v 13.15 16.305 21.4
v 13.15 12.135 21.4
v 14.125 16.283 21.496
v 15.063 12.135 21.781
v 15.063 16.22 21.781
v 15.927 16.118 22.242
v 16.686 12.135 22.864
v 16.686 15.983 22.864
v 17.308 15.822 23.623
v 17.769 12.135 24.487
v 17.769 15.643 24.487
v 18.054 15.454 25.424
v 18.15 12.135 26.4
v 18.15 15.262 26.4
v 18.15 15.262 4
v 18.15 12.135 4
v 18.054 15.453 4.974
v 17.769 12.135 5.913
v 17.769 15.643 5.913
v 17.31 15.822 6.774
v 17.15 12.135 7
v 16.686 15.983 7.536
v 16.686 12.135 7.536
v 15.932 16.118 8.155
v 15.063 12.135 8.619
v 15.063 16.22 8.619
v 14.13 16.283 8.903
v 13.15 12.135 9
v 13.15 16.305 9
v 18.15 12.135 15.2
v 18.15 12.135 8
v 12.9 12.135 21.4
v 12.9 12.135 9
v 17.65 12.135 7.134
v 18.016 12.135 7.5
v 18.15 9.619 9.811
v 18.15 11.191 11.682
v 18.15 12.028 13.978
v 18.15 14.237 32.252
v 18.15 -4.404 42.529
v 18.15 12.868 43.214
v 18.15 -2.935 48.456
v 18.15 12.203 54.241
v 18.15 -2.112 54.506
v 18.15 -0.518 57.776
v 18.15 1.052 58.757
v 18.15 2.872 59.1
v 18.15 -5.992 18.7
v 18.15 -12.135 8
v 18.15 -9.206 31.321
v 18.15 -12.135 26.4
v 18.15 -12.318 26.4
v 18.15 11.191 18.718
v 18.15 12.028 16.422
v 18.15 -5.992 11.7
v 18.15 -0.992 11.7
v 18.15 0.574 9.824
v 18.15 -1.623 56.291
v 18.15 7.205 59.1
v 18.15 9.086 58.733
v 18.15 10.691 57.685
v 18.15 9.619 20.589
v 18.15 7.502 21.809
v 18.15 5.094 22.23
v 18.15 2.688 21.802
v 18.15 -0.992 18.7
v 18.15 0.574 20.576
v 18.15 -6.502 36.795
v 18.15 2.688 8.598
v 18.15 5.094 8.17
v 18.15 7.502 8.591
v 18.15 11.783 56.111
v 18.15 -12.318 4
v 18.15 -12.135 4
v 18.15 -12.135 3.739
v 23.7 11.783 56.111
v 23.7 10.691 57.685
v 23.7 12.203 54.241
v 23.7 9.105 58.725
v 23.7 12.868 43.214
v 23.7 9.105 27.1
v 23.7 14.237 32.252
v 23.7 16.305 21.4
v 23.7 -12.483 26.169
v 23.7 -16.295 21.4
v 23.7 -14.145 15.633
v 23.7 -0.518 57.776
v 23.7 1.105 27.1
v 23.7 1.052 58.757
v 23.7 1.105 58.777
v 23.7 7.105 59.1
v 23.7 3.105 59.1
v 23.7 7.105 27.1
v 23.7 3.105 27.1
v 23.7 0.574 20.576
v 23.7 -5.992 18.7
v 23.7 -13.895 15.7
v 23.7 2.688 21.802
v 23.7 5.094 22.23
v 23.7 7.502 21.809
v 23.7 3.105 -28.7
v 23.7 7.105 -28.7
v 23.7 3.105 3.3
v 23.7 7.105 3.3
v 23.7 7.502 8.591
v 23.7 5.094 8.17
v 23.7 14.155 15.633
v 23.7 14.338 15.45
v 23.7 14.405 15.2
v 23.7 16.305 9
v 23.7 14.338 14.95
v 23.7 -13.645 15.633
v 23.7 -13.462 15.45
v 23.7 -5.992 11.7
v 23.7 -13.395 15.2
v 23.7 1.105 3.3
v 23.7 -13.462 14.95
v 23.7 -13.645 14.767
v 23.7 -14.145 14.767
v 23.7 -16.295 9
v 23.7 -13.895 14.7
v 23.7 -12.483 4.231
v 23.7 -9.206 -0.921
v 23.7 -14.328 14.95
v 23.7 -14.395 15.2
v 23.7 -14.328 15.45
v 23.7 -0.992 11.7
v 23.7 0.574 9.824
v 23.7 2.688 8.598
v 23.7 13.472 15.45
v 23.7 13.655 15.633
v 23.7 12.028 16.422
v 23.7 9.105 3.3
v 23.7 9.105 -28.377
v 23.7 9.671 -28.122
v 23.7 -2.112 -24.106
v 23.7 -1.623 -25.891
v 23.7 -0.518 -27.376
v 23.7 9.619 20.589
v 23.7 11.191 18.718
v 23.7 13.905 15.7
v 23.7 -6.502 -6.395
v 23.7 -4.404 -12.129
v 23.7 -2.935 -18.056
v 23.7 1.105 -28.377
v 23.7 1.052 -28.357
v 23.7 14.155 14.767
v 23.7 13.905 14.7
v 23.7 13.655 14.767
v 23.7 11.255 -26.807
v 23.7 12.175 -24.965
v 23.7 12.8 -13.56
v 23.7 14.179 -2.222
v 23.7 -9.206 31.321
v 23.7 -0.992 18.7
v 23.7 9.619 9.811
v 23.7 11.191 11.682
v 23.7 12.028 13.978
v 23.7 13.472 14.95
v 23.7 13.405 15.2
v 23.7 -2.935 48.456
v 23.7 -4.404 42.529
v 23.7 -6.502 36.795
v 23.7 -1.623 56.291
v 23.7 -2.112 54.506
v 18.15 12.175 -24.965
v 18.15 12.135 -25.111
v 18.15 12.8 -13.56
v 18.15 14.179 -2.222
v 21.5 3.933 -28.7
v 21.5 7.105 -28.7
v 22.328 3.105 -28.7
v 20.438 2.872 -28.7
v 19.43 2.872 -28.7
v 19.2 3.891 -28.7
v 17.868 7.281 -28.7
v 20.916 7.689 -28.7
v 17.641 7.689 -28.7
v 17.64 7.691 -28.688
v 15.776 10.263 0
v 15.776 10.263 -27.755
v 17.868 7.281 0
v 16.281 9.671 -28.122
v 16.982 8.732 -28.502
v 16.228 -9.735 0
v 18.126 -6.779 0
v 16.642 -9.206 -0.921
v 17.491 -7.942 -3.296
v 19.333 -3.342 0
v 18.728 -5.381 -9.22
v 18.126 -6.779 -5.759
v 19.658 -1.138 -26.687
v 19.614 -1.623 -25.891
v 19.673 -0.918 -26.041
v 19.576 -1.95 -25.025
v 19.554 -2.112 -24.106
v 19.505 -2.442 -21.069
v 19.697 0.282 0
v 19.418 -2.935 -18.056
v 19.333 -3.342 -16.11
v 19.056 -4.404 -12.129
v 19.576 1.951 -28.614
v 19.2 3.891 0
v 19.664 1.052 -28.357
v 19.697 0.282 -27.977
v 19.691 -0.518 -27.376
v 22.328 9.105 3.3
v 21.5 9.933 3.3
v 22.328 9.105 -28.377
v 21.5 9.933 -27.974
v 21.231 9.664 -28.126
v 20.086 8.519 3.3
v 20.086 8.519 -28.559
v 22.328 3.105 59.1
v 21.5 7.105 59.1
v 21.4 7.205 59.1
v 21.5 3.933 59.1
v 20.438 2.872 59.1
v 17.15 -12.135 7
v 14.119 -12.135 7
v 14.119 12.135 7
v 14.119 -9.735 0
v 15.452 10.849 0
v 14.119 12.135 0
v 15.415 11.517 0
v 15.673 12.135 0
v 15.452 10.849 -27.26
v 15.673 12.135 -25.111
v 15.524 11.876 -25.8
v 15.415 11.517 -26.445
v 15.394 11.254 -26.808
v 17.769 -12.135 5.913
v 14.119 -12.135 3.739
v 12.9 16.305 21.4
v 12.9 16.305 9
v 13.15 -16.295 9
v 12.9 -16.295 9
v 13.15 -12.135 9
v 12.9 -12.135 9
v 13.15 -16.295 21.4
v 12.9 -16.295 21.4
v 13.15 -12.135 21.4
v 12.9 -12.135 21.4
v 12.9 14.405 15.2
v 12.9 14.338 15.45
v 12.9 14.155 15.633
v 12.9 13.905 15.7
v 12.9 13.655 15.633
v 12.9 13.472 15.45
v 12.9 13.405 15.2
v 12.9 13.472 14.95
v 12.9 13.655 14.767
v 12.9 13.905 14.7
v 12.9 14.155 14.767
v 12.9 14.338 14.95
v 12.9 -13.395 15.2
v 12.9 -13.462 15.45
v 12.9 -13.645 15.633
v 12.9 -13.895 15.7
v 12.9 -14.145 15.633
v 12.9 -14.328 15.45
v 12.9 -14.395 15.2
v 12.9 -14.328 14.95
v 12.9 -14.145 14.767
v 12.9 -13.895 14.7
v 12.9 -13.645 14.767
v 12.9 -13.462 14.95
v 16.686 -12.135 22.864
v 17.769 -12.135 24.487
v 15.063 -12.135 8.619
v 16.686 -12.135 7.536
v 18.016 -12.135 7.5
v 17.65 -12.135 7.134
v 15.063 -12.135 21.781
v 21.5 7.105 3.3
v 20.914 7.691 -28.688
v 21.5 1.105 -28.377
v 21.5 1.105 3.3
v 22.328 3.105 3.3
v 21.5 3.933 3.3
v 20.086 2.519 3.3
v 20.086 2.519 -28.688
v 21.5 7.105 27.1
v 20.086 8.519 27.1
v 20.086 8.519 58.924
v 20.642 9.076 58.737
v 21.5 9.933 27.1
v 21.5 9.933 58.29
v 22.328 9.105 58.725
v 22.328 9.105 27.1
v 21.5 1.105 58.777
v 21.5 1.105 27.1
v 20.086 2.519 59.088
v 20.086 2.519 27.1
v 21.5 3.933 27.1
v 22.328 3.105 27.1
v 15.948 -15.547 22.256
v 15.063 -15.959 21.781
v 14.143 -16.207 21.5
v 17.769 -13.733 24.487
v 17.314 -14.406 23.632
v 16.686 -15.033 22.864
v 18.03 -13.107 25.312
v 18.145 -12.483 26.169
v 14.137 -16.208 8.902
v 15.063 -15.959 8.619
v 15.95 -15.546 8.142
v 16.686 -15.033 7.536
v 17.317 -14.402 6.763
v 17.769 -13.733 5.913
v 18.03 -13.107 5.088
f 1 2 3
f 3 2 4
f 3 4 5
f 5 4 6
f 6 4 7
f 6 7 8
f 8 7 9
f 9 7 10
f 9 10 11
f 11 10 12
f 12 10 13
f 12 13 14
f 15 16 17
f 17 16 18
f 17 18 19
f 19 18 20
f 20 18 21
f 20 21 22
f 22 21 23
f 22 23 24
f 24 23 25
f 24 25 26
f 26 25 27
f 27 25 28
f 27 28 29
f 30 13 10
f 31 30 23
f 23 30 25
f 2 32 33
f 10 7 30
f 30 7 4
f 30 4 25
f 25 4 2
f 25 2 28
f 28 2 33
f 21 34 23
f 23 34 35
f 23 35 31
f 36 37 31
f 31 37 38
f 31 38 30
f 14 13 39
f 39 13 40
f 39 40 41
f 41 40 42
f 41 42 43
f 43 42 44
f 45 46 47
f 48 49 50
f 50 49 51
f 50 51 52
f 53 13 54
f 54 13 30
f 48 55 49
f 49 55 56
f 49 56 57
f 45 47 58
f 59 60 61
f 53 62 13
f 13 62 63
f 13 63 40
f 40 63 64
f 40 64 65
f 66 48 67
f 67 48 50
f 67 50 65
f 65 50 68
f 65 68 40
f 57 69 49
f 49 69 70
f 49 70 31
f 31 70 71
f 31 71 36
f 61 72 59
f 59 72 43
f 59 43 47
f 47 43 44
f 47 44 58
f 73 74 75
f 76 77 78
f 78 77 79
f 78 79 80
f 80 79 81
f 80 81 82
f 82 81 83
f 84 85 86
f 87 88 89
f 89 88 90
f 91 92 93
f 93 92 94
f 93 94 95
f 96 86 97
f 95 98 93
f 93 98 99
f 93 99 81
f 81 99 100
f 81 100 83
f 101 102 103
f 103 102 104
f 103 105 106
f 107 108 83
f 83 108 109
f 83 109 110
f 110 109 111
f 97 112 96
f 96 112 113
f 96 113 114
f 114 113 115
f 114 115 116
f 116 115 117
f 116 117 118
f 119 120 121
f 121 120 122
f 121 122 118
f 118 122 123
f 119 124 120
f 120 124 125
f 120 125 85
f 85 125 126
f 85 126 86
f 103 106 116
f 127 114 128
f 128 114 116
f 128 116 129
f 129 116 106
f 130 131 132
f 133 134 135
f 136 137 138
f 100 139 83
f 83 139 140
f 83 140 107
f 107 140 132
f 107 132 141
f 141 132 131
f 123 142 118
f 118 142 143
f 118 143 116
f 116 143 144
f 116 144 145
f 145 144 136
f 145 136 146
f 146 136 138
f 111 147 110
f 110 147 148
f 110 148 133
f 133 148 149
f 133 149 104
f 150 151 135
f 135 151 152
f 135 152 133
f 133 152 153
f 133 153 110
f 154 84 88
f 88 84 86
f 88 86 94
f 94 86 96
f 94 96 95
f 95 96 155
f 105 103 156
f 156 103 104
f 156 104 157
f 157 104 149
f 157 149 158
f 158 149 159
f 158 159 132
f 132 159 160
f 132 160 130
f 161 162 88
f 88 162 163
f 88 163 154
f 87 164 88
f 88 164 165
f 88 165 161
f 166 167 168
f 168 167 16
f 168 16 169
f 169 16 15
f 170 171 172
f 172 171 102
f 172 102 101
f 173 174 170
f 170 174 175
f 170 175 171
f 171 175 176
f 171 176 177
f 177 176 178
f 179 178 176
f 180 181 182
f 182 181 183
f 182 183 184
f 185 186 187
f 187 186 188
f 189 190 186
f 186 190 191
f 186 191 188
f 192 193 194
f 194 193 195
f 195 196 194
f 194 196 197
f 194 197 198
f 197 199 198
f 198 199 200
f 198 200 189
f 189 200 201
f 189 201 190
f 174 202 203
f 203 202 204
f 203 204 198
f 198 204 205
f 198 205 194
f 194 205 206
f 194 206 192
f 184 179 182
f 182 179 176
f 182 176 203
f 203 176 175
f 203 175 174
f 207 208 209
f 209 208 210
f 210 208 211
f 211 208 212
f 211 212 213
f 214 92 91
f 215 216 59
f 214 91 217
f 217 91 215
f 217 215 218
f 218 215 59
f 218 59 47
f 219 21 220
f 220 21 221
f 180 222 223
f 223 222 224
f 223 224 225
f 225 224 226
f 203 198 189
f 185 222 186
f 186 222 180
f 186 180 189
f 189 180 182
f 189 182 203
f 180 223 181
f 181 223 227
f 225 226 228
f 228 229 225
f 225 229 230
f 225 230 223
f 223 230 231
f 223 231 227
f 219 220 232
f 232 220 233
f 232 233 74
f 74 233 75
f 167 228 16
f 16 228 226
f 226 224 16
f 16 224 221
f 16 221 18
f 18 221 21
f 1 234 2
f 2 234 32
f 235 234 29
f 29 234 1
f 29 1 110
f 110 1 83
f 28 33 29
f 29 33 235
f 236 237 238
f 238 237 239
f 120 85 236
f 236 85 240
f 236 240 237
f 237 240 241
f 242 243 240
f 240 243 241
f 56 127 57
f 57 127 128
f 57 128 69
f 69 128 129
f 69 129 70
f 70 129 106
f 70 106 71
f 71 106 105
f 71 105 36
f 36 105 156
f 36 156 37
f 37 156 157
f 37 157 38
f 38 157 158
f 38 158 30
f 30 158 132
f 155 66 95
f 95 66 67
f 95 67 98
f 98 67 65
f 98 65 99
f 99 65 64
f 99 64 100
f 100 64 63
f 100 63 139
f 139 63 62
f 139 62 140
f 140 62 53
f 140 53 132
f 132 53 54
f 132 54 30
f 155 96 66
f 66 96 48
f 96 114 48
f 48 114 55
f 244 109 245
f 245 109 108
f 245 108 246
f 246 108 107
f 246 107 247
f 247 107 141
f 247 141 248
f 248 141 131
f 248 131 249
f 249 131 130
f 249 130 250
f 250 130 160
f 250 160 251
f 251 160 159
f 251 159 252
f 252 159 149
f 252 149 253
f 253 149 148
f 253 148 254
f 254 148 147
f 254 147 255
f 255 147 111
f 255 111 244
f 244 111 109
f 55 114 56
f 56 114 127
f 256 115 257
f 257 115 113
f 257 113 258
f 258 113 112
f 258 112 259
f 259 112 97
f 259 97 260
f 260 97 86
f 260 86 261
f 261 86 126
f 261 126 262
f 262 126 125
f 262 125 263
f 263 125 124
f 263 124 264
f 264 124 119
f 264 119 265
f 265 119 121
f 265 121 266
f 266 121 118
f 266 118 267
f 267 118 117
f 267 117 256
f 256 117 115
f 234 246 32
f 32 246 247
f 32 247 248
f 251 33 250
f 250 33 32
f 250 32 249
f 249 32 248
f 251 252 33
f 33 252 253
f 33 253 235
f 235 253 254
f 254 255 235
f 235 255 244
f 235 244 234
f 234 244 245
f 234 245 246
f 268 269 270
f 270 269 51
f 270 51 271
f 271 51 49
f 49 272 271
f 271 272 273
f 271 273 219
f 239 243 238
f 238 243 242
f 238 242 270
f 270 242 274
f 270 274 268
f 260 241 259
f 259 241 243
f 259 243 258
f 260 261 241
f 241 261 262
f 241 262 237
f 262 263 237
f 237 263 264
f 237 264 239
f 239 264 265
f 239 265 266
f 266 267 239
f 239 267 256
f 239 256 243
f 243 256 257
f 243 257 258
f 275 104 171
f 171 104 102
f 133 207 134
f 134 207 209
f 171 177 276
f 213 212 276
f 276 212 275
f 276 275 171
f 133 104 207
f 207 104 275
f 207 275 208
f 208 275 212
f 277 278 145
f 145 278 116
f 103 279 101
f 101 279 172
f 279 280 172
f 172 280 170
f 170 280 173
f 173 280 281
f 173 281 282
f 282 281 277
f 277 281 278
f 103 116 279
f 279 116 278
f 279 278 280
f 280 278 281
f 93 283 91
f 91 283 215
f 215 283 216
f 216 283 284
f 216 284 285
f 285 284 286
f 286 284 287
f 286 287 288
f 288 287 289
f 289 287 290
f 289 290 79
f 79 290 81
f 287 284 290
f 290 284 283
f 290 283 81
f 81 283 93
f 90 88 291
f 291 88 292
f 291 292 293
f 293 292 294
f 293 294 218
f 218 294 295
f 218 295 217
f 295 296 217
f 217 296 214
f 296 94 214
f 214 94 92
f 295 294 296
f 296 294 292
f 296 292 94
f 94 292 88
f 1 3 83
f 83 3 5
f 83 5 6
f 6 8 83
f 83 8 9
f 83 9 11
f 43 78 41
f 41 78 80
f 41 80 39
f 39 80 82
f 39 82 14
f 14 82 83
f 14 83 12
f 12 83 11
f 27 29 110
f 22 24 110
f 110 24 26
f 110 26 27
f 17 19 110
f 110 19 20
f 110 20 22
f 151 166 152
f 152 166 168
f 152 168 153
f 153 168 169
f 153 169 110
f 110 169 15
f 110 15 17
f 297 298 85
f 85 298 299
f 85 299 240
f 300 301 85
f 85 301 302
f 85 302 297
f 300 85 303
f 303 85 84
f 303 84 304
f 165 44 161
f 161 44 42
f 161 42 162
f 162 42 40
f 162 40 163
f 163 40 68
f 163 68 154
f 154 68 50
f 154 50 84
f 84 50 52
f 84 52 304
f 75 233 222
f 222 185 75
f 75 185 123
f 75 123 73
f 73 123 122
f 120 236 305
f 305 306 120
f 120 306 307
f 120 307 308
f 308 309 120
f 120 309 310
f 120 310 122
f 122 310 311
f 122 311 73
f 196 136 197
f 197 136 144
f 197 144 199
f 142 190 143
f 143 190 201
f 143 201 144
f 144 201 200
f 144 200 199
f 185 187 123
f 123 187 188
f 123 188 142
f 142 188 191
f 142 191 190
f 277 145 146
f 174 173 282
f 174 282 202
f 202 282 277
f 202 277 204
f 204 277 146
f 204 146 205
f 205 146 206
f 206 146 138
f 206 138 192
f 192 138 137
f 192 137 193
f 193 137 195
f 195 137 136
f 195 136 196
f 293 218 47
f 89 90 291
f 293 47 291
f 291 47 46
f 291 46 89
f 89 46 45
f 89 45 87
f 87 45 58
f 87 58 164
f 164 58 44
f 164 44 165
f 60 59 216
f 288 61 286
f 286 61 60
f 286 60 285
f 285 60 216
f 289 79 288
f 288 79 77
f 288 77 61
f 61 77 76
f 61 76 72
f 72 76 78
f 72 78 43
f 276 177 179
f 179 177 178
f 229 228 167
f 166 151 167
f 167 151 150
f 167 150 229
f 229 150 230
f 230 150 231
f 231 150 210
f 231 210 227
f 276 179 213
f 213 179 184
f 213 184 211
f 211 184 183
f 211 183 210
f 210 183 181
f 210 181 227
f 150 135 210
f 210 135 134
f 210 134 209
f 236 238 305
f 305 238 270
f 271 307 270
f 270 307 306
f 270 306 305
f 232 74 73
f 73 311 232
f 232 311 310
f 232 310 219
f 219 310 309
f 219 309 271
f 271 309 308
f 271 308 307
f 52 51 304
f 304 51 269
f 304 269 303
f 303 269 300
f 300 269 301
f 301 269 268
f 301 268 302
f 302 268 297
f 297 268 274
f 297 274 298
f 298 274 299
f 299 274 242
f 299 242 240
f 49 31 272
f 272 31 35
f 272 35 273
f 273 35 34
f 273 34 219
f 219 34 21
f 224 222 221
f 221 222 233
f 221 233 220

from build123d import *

# Parameters (mm, degrees)
SKETCH1_R               = 2
BOSS_EXTRUDE3_DEPTH     = 7
SKETCH3_R               = 1.0000000000000002
SKETCH3_R_2             = 0.9999999999999998
SKETCH3_R_3             = 0.9999999999999996
SKETCH3_R_4             = 0.9999999999999993
CUT_EXTRUDE2_DEPTH      = 26.09227496303999
BOSS_EXTRUDE4_START     = -7
BOSS_EXTRUDE4_DEPTH     = 7
BOSS_EXTRUDE5_START     = -30
BOSS_EXTRUDE5_DEPTH     = 30
FILLET2_R               = 1.5
CUT_EXTRUDE5_DEPTH      = 42.36510924463761
BOSS_EXTRUDE6_DEPTH     = 10.5
MOVE_START              = -28.7
MOVE_FACE1_DEPTH        = 5.7
DELETEFACE1_START       = 23.7
DELETEFACE1_OUTLINE_W   = 10.499999999999998
DELETEFACE1_OUTLINE_H   = 35.699999999999996
DELETEFACE1_DEPTH       = 15.7
SKETCH11_OUTSIDE_W      = 51.876
SKETCH11_OUTSIDE_H      = 42.462
CUT_EXTRUDE6_DEPTH      = 46.16926949380307
SERVO_START             = -12.760864102
SERVO_MICRO_OUTLINE_W   = 22.6
SERVO_MICRO_OUTLINE_H   = 12.399999999999999
SERVO_MICRO_DEPTH       = 22.3
SERVO_START_2           = 9.539135898
SERVO_MICRO_2_DEPTH     = 4.3
SERVO_START_3           = 2.889135898
SERVO_MICRO_3_DEPTH     = 2.4
SERVO_START_4           = 13.839135898
SERVO_MICRO_4_OUTLINE_R = 2.5
SERVO_MICRO_4_DEPTH     = 3.3
SERVO_START_5           = -25.667487826
SERVO_MICRO_5_OUTLINE_R = 0.6
SERVO_MICRO_5_DEPTH     = 2.3
SERVO_MICRO_6_OUTLINE_R = 0.6
SERVO_MICRO_6_DEPTH     = 2.3
SERVO_MICRO_7_OUTLINE_R = 0.6
SERVO_MICRO_7_DEPTH     = 2.3
BODY_MOVE_COPY1_ANGLE   = 90
SKETCH13_R              = 0.5000000000000009
BOSS_EXTRUDE7_DEPTH     = 5.55
SKETCH13_3_R            = 0.5000000000000009
BOSS_EXTRUDE8_DEPTH     = 10.8
CUT_EXTRUDE7_DEPTH      = 32
BOSS_EXTRUDE9_DEPTH     = 5.55
CUT_EXTRUDE8_DEPTH      = 72.0125468998838
BOSS_EXTRUDE10_DEPTH    = 5.55
FILLET4_R               = 5
CUT_EXTRUDE10_DEPTH     = 72.01254695034633
FILLET8_START           = 12.13472734
FILLET8_DEPTH           = 2.98662
FILLET8_START_2         = -12.463268044
FILLET8_2_DEPTH         = 0.328540704
FILLET8_START_3         = -16.295273118
FILLET8_3_DEPTH         = 3.832005074
FILLET8_START_4         = 15.12134734
FILLET8_4_DEPTH         = 1.18338
FILLET8_START_5         = -7.24411042
FILLET8_5_DEPTH         = 25.39411042
FILLET9_R               = 1
CUT_EXTRUDE11_REACH     = 67.729
SKETCH20_W              = 27.71545594337198
SKETCH20_H              = 25.17831686014588


with BuildPart() as part:
    # Sketch1 → Boss-Extrude3 (new body)
    with BuildSketch(Plane.XY):
        with BuildLine():
            Line((5.606455718863049, 13.824363162033857), (-15.462379801128069, 15.791841653866829))
            Line((-15.462379801128069, 15.791841653866829), (-15.46237980112806, -15.791841653866806))
            Line((-15.46237980112806, -15.791841653866806), (5.606455718863063, -13.824363162033817))
            ThreePointArc((5.606455718863063, -13.824363162033817), (18.200000000000003, 2.613e-14), (5.606455718863049, 13.824363162033857))
        make_face()
        Circle(SKETCH1_R, mode=Mode.SUBTRACT)
    extrude(amount=BOSS_EXTRUDE3_DEPTH)

    # Sketch3 → Cut-Extrude2 (cut, through all)
    with BuildSketch(Plane.XY.offset(7)):
        with Locations((-4.5, 0)):
            Circle(SKETCH3_R)
        with Locations((-8.499999999999998, 0)):
            Circle(SKETCH3_R_2)
        with Locations(Location((4.5, -1.73e-15, 0), (0, 0, 180))):
            Circle(SKETCH3_R_3)
        with Locations(Location((8.499999999999998, -1.73e-15, 0), (0, 0, 180))):
            Circle(SKETCH3_R_4)
    extrude(amount=-CUT_EXTRUDE2_DEPTH, mode=Mode.SUBTRACT)

    # Sketch6 → Boss-Extrude4 (add)
    with BuildSketch(Plane.XY.offset(7).offset(BOSS_EXTRUDE4_START)):
        with BuildLine():
            Line((12.20372638619735, 13.208287910486863), (5.606455718863047, 13.824363162033858))
            ThreePointArc((5.606455718863047, 13.82436316203386), (18.2, 2.598e-14), (5.606455718863056, -13.824363162033816))
            Line((5.606455718863056, -13.824363162033816), (12.203726386197348, -13.208287910486817))
            ThreePointArc((12.203726386197348, -13.208287910486817), (19.699999999999996, 2.132e-14), (12.20372638619735, 13.20828791048686))
        make_face()
    extrude(amount=BOSS_EXTRUDE4_DEPTH)

    # Sketch6<3> → Boss-Extrude5 (add)
    with BuildSketch(Plane.XY.offset(7).offset(BOSS_EXTRUDE5_START)):
        with BuildLine():
            Line((23.700000000000006, 12.13472734042489), (12.20372638619735, 13.208287910486863))
            ThreePointArc((12.20372638619735, 13.20828791048686), (19.699999999999996, 2.132e-14), (12.203726386197348, -13.208287910486817))
            Line((12.203726386197348, -13.208287910486817), (23.700000000000003, -12.134727340424835))
            Line((23.700000000000003, -12.134727340424835), (23.700000000000006, 12.134727340424892))
        make_face()
    extrude(amount=BOSS_EXTRUDE5_DEPTH)

    # Fillet2
    fillet2_edges = [part.edges().sort_by_distance(p)[0] for p in [
        (12.20372638619735, -13.208287910486817, -11.5),
        (12.20372638619735, 13.208287910486861, -11.5),
    ]]
    fillet(fillet2_edges, radius=FILLET2_R)

    # Sketch8 → Cut-Extrude5 (cut, through all)
    with BuildSketch(Plane.XY.offset(7)):
        with BuildLine():
            Line((-15.462379801128069, 15.791841653866829), (-15.46237980112806, -15.791841653866808))
            Line((-15.46237980112806, -15.791841653866806), (1.328273056892355, -14.223874201150027))
            ThreePointArc((1.3282730568923518, -14.22387420115002), (-14.285758873920813, 0), (1.3282730568923529, 14.22387420115002))
            Line((1.3282730568923604, 14.223874201150062), (-15.462379801128069, 15.791841653866829))
        make_face()
    extrude(amount=-CUT_EXTRUDE5_DEPTH, mode=Mode.SUBTRACT)

    # Sketch10 → Boss-Extrude6 (add)
    with BuildSketch(Plane.ZX.offset(1.6347273404248903)):
        Polygon((7, 23.700000000000003), (7, 39.40000000018666), (-28.700000000000003, 39.40000000018665), (-28.700000000000014, 23.700000000000003), align=None)
    extrude(amount=BOSS_EXTRUDE6_DEPTH)

    # Move Face1: read off the stored shape, not the designer's step
    # Move Face1 outline → Move Face1 (add)
    with BuildSketch(Plane.XY.offset(MOVE_START)):
        with BuildLine():
            Line((17.033263706, -12.757289525), (23.7, -12.13472734))
            Line((23.7, -12.13472734), (23.7, 12.13472734))
            Line((23.7, 12.13472734), (17.033263706, 12.757289525))
            ThreePointArc((17.033263706, 12.757289525), (15.554272674, 11.938827155), (15.776353621, 10.263125757))
            ThreePointArc((15.776353621, 10.263125757), (19.7, 0), (15.776353621, -10.263125757))
            ThreePointArc((15.776353621, -10.263125757), (15.554272674, -11.938827155), (17.033263706, -12.757289525))
        make_face()
    extrude(amount=MOVE_FACE1_DEPTH)

    # DeleteFace1: read off the stored shape, not the designer's step
    # DeleteFace1 outline → DeleteFace1 (cut)
    with BuildSketch(Plane.YZ.offset(DELETEFACE1_START)):
        with Locations((6.884727339999999, -10.849999999999998)):
            Rectangle(DELETEFACE1_OUTLINE_W, DELETEFACE1_OUTLINE_H)
    extrude(amount=DELETEFACE1_DEPTH, mode=Mode.SUBTRACT)

    # Sketch11 outside → Cut-Extrude6 (cut, through all)
    with BuildSketch(Plane.XY.offset(7)):
        with Locations((4.706999999999997, 0)):
            Rectangle(SKETCH11_OUTSIDE_W, SKETCH11_OUTSIDE_H)
        with BuildLine():
            Line((23.700000000000003, 12.134727340424888), (-1.43e-15, 12.134727340424885))
            ThreePointArc((-1.43e-15, 12.134727340424885), (-12.134727340424885, 1.49e-15), (0, -12.134727340424885))
            Line((0, -12.134727340424885), (23.700000000000006, -12.134727340424835))
            Line((23.700000000000006, -12.134727340424835), (23.700000000000003, 12.134727340424888))
        make_face(mode=Mode.SUBTRACT)
    extrude(amount=-CUT_EXTRUDE6_DEPTH, mode=Mode.SUBTRACT)

    # Sketch13 → Boss-Extrude7 (add)
    # profile 1 of 3: a face of its own
    with BuildSketch(Plane(origin=(23.700000000000003, -3.39e-15, 0), x_dir=(0, 0, -1), z_dir=(1, -1.4e-16, 0))):
        Polygon((-8.999999999999998, -16.295272659575108), (-9.000000000000002, -12.134727340424831), (-7, -12.134727340424831), (-6.999999999999999, 12.134727340424892), (-9.000000000000002, 12.134727340424888), (-9.000000000000002, 16.30472734042489), (-21.4, 16.30472734042489), (-21.399999999999995, 12.134727340424888), (-59.100000000000016, 12.134727340424885), (-59.100000000000016, -12.134727340424831), (-21.399999999999995, -12.134727340424831), (-21.4, -16.295272659575108), align=None)
        with Locations(Location((-15.200000000000001, 13.904727340424891, 0), (0, 0, 90))):
            Circle(SKETCH13_R, mode=Mode.SUBTRACT)
        with Locations(Location((-15.200000000000001, -13.895272659575111, 0), (0, 0, 90))):
            Circle(SKETCH13_R, mode=Mode.SUBTRACT)
        with BuildLine():
            ThreePointArc((-11.700000000000001, -0.9920668991734916), (-15.199999999999998, 12.13472734042489), (-18.700000000000003, -0.9920668991734924))
            Line((-18.700000000000003, -0.9920668991734924), (-18.700000000000003, -5.9920668991734924))
            Line((-18.700000000000003, -5.9920668991734924), (-11.700000000000003, -5.992066899173492))
            Line((-11.700000000000003, -5.992066899173492), (-11.700000000000001, -0.9920668991734916))
        make_face(mode=Mode.SUBTRACT)
    # profile 2 of 3: a face of its own
    with BuildSketch(Plane(origin=(23.700000000000003, -3.39e-15, 0), x_dir=(0, 0, -1), z_dir=(1, -1.4e-16, 0))):
        Polygon((-21.399999999999995, 12.134727340424888), (-21.4, 16.30472734042489), (-9.000000000000002, 16.30472734042489), (-9.000000000000002, 12.134727340424888), align=None)
        with Locations(Location((-15.200000000000001, 13.904727340424891, 0), (0, 0, 90))):
            Circle(SKETCH13_R, mode=Mode.SUBTRACT)
    # profile 3 of 3: a face of its own
    with BuildSketch(Plane(origin=(23.700000000000003, -3.39e-15, 0), x_dir=(0, 0, -1), z_dir=(1, -1.4e-16, 0))):
        Polygon((-21.399999999999995, -12.134727340424831), (-9.000000000000002, -12.134727340424831), (-8.999999999999998, -16.295272659575108), (-21.4, -16.295272659575108), align=None)
        with Locations(Location((-15.200000000000001, -13.895272659575111, 0), (0, 0, 90))):
            Circle(SKETCH13_R, mode=Mode.SUBTRACT)
    extrude(amount=-BOSS_EXTRUDE7_DEPTH)

    # Sketch13<3> → Boss-Extrude8 (add)
    # profile 1 of 2: a face of its own
    with BuildSketch(Plane(origin=(23.700000000000003, -3.39e-15, 0), x_dir=(0, 0, -1), z_dir=(1, -1.4e-16, 0))):
        Polygon((-21.399999999999995, 12.134727340424888), (-21.4, 16.30472734042489), (-9.000000000000002, 16.30472734042489), (-9.000000000000002, 12.134727340424888), align=None)
        with Locations(Location((-15.200000000000001, 13.904727340424891, 0), (0, 0, 90))):
            Circle(SKETCH13_3_R, mode=Mode.SUBTRACT)
    # profile 2 of 2: a face of its own
    with BuildSketch(Plane(origin=(23.700000000000003, -3.39e-15, 0), x_dir=(0, 0, -1), z_dir=(1, -1.4e-16, 0))):
        Polygon((-21.399999999999995, -12.134727340424831), (-9.000000000000002, -12.134727340424831), (-8.999999999999998, -16.295272659575108), (-21.4, -16.295272659575108), align=None)
        with Locations(Location((-15.200000000000001, -13.895272659575111, 0), (0, 0, 90))):
            Circle(SKETCH13_3_R, mode=Mode.SUBTRACT)
    extrude(amount=-BOSS_EXTRUDE8_DEPTH)

    # Sketch15 → Cut-Extrude7 (cut)
    with BuildSketch(Plane(origin=(1.903e-14, 0, -28.70000000000003), x_dir=(-1, 0, -6.6e-16), z_dir=(6.6e-16, 0, -1))):
        Polygon((-22.328427124746177, 3.104727340424887), (-23.699999999999985, 3.104727340424887), (-23.699999999999985, 1.1047273404248876), (-21.499999999999986, 1.1047273404248876), (-20.08578643762689, 2.5189409027979854), (-21.49999999999999, 3.9331544651710773), align=None)
        Polygon((-22.328427124746177, 9.104727340424887), (-23.699999999999985, 9.104727340424887), (-23.699999999999985, 7.104727340424887), (-21.499999999999986, 7.104727340424887), (-20.08578643762689, 8.518940902797986), (-21.49999999999999, 9.933154465171077), align=None)
    cut_extrude7 = extrude(amount=-CUT_EXTRUDE7_DEPTH, mode=Mode.SUBTRACT)

    # Mirror1: Cut-Extrude7 across plane
    add(cut_extrude7.mirror(Plane(origin=(0, 0, 15.200000000000001), x_dir=(1, 0, 0), z_dir=(0, 0, -1))), mode=Mode.SUBTRACT)

    # Sketch16 → Boss-Extrude9 (add)
    with BuildSketch(Plane(origin=(23.700000000000003, -3.39e-15, 0), x_dir=(0, 0, -1), z_dir=(1, -1.4e-16, 0))):
        with BuildLine():
            Line((-21.399999999999995, 12.134727340424888), (-21.4, 16.30472734042489))
            ThreePointArc((-21.4, 16.30472734042489), (-40.135039546574305, 13.18039662240372), (-59.100000000000016, 12.134727340424885))
            Line((-59.100000000000016, 12.134727340424885), (-21.399999999999995, 12.134727340424888))
        make_face()
        with BuildLine():
            Line((-9.000000000000002, 16.30472734042489), (-9.000000000000002, 12.13472734042489))
            Line((-9.000000000000002, 12.13472734042489), (28.700000000000014, 12.134727340424892))
            ThreePointArc((28.700000000000014, 12.134727340424892), (9.735039546574328, 13.180396622403777), (-9.000000000000002, 16.30472734042489))
        make_face()
    extrude(amount=-BOSS_EXTRUDE9_DEPTH)

    # Sketch18 → Cut-Extrude8 (cut, through all)
    with BuildSketch(Plane(origin=(23.700000000000003, -3.39e-15, 0), x_dir=(0, 0, -1), z_dir=(1, -1.4e-16, 0))):
        with BuildLine():
            Line((-59.100000000000016, -12.134727340424831), (-26.661429094135563, -12.134727340424831))
            ThreePointArc((-26.661429094135563, -12.134727340424838), (-42.096369157624615, -4.537893974213425), (-59.100000000000016, -1.9252726595751))
            Line((-59.100000000000016, -1.9252726595751037), (-59.100000000000016, -12.134727340424831))
        make_face()
        with BuildLine():
            Line((-3.7385709058644423, -12.134727340424831), (28.700000000000003, -12.134727340424831))
            Line((28.700000000000003, -12.134727340424831), (28.700000000000003, -1.9252726595751037))
            ThreePointArc((28.700000000000003, -1.9252726595751), (11.69636915762461, -4.537893974213425), (-3.738570905864435, -12.134727340424838))
        make_face()
    extrude(amount=-CUT_EXTRUDE8_DEPTH, mode=Mode.SUBTRACT)

    # Sketch18<3> → Boss-Extrude10 (add)
    with BuildSketch(Plane(origin=(23.700000000000003, -3.39e-15, 0), x_dir=(0, 0, -1), z_dir=(1, -1.4e-16, 0))):
        with BuildLine():
            ThreePointArc((-26.661429094135563, -12.134727340424838), (-23.96906894889605, -14.137042924937433), (-21.4, -16.295272659575097))
            Line((-21.4, -16.295272659575108), (-21.4, -12.134727340424831))
            Line((-21.4, -12.134727340424831), (-26.66142909413556, -12.134727340424831))
        make_face()
        with BuildLine():
            ThreePointArc((-9, -16.295272659575097), (-6.430931051103947, -14.137042924937433), (-3.738570905864435, -12.134727340424838))
            Line((-3.7385709058644423, -12.134727340424831), (-9.000000000000005, -12.134727340424831))
            Line((-9.000000000000005, -12.134727340424831), (-9.000000000000005, -16.295272659575108))
        make_face()
    extrude(amount=-BOSS_EXTRUDE10_DEPTH)

    # Fillet4
    fillet4_edges = [part.edges().sort_by_distance(p)[0] for p in [
        (21.63952842596371, -1.9252726595751048, -28.700000000000003),
        (20.925, -1.925272659575101, 59.10000000000002),
        (20.925000000000004, 12.134727340424881, 59.100000000000016),
    ]]
    fillet(fillet4_edges, radius=FILLET4_R)

    # Sketch19 → Cut-Extrude10 (cut, through all)
    with BuildSketch(Plane(origin=(23.700000000000003, -3.39e-15, 0), x_dir=(0, 0, -1), z_dir=(1, -1.4e-16, 0))):
        with BuildLine():
            Line((24.105591483628846, 12.321380196120076), (30.19974331893468, 12.321380196120076))
            Line((30.19974331893468, 12.321380196120076), (30.19974331893468, 7.512752922909521))
            Line((30.19974331893468, 7.512752922909521), (28.687547870024137, 7.690513778051795))
            ThreePointArc((28.687547870024137, 7.690513778051795), (28.58393863914358, 8.408905582685197), (28.37741082226619, 9.10472734042489))
            ThreePointArc((28.37741082226619, 9.10472734042489), (26.70764725474025, 11.33211091295099), (24.105591483628846, 12.321380196120076))
        make_face()
    extrude(amount=-CUT_EXTRUDE10_DEPTH, mode=Mode.SUBTRACT)

    # Fillet8: read off the stored shape, not the designer's step
    # Fillet8 outline → Fillet8 (add)
    with BuildSketch(Plane(origin=(0, 0, 0), x_dir=(1, 0, 0), z_dir=(0, 1, 0)).offset(FILLET8_START)):
        with BuildLine():
            Line((13.15, -9), (18.15, -9))
            Line((18.15, -9), (18.15, -4))
            ThreePointArc((18.15, -4), (16.685533906, -7.535533906), (13.15, -9))
        make_face()
        with BuildLine():
            ThreePointArc((13.15, -21.4), (16.685533906, -22.864466094), (18.15, -26.4))
            Line((18.15, -26.4), (18.15, -21.4))
            Line((18.15, -21.4), (13.15, -21.4))
        make_face()
    extrude(amount=FILLET8_DEPTH)

    # Fillet8 2 outline → Fillet8 2 (add)
    with BuildSketch(Plane(origin=(0, 0, 0), x_dir=(1, 0, 0), z_dir=(0, 1, 0)).offset(FILLET8_START_2)):
        with BuildLine():
            Line((13.15, -9), (18.15, -9))
            Line((18.15, -9), (18.15, -4))
            ThreePointArc((18.15, -4), (16.685533906, -7.535533906), (13.15, -9))
        make_face()
        with BuildLine():
            ThreePointArc((13.15, -21.4), (16.685533906, -22.864466094), (18.15, -26.4))
            Line((18.15, -26.4), (18.15, -21.4))
            Line((18.15, -21.4), (13.15, -21.4))
        make_face()
    extrude(amount=FILLET8_2_DEPTH)

    # Fillet8 3 outline → Fillet8 3 (add)
    with BuildSketch(Plane(origin=(0, 0, 0), x_dir=(1, 0, 0), z_dir=(0, 1, 0)).offset(FILLET8_START_3)):
        with BuildLine():
            ThreePointArc((13.15, -21.4), (16.685533906, -22.864466094), (18.15, -26.4))
            Line((18.15, -26.4), (18.15, -21.4))
            Line((18.15, -21.4), (13.15, -21.4))
        make_face()
        with BuildLine():
            ThreePointArc((18.15, -4), (16.685533906, -7.535533906), (13.15, -9))
            Line((13.15, -9), (18.15, -9))
            Line((18.15, -9), (18.15, -4))
        make_face()
    extrude(amount=FILLET8_3_DEPTH)

    # Fillet8 4 outline → Fillet8 4 (add)
    with BuildSketch(Plane(origin=(0, 0, 0), x_dir=(1, 0, 0), z_dir=(0, 1, 0)).offset(FILLET8_START_4)):
        with BuildLine():
            ThreePointArc((13.15, -21.4), (16.685533906, -22.864466094), (18.15, -26.4))
            Line((18.15, -26.4), (18.15, -21.4))
            Line((18.15, -21.4), (13.15, -21.4))
        make_face()
        with BuildLine():
            ThreePointArc((18.15, -4), (16.685533906, -7.535533906), (13.15, -9))
            Line((13.15, -9), (18.15, -9))
            Line((18.15, -9), (18.15, -4))
        make_face()
    extrude(amount=FILLET8_4_DEPTH)

    # Fillet8 5 outline → Fillet8 5 (cut)
    with BuildSketch(Plane.YZ.offset(FILLET8_START_5)):
        with BuildLine():
            ThreePointArc((-12.31848008, 4), (-14.236321993, 6.556116122), (-16.295272761, 9.000000114))
            Line((-16.295272761, 9.000000114), (-16.295273118, 4))
            Line((-16.295273118, 4), (-12.31848008, 4))
        make_face()
        with BuildLine():
            Line((-16.295273118, 26.4), (-16.295272761, 21.399999886))
            ThreePointArc((-16.295272761, 21.399999886), (-14.236321993, 23.843883878), (-12.31848008, 26.4))
            Line((-12.31848008, 26.4), (-16.295273118, 26.4))
        make_face()
        with BuildLine():
            Line((16.30472734, 26.4), (15.262410605, 26.4))
            ThreePointArc((15.262410605, 26.4), (15.765062943, 23.896142171), (16.30472734, 21.4))
            Line((16.30472734, 21.4), (16.30472734, 26.4))
        make_face()
        with BuildLine():
            Line((16.30472734, 4), (16.30472734, 9))
            ThreePointArc((16.30472734, 9), (15.765062943, 6.503857829), (15.262410605, 4))
            Line((15.262410605, 4), (16.30472734, 4))
        make_face()
    extrude(amount=FILLET8_5_DEPTH, mode=Mode.SUBTRACT)

    # Fillet9
    fillet9_edges = [part.edges().sort_by_distance(p)[0] for p in [
        (18.150000000000002, 2.76e-14, 7),
    ]]
    fillet(fillet9_edges, radius=FILLET9_R)

    # Sketch20 → Cut-Extrude11 (cut, up to next)
    with BuildSketch(Plane(origin=(0, 0, 0), x_dir=(-1, 0, 0), z_dir=(0, 0, -1)), mode=Mode.PRIVATE) as cut_extrude11_sk1:
        with Locations((-0.26171750586786313, -0.4544310896480539)):
            Rectangle(SKETCH20_W, SKETCH20_H)
    cut_extrude11_tool1 = extrude(cut_extrude11_sk1.sketch, amount=-CUT_EXTRUDE11_REACH, mode=Mode.PRIVATE) & part.part
    add(cut_extrude11_tool1.solids().sort_by_distance((0.261718, -0.454431, 0))[0], mode=Mode.SUBTRACT)


with BuildPart() as body_2:
    # Servo Micro: read off the stored shape, not the designer's step
    # Servo Micro outline → Servo Micro (new body)
    with BuildSketch(Plane(origin=(0, 0, 0), x_dir=(1, 0, 0), z_dir=(0, 1, 0)).offset(SERVO_START)):
        with Locations((-12.067487826, -26.388081974)):
            Rectangle(SERVO_MICRO_OUTLINE_W, SERVO_MICRO_OUTLINE_H)
    extrude(amount=SERVO_MICRO_DEPTH)

    # Servo Micro 2 outline → Servo Micro 2 (add)
    with BuildSketch(Plane(origin=(0, 0, 0), x_dir=(1, 0, 0), z_dir=(0, 1, 0)).offset(SERVO_START_2)):
        with BuildLine():
            ThreePointArc((-11.10082116, -25.109193568), (-23.367487826, -26.388081974), (-11.10082116, -27.666970381))
            ThreePointArc((-11.10082116, -27.666970381), (-9.567487826, -26.388081975), (-11.10082116, -25.109193568))
        make_face()
    extrude(amount=SERVO_MICRO_2_DEPTH)

    # Servo Micro 3 outline → Servo Micro 3 (add)
    with BuildSketch(Plane(origin=(0, 0, 0), x_dir=(1, 0, 0), z_dir=(0, 1, 0)).offset(SERVO_START_3)):
        with BuildLine():
            Line((2.667676828, -25.838081974), (4.232512174, -25.838081974))
            Line((4.232512174, -25.838081974), (4.232512174, -20.188081974))
            Line((4.232512174, -20.188081974), (-0.767487826, -20.188081974))
            Line((-0.767487826, -20.188081974), (-0.767487826, -32.588081974))
            Line((-0.767487826, -32.588081974), (4.232512174, -32.588081974))
            Line((4.232512174, -32.588081974), (4.232512174, -26.938081974))
            Line((4.232512174, -26.938081974), (2.667676828, -26.938081974))
            ThreePointArc((2.667676828, -26.938081974), (0.832512174, -26.388081974), (2.667676828, -25.838081974))
        make_face()
        with BuildLine():
            Line((-23.367487826, -32.588081974), (-23.367487826, -20.188081974))
            Line((-23.367487826, -20.188081974), (-28.367487826, -20.188081974))
            Line((-28.367487826, -20.188081974), (-28.367487826, -25.838081974))
            Line((-28.367487826, -25.838081974), (-26.802652481, -25.838081974))
            ThreePointArc((-26.802652481, -25.838081974), (-24.967487826, -26.388081974), (-26.802652481, -26.938081974))
            Line((-26.802652481, -26.938081974), (-28.367487826, -26.938081974))
            Line((-28.367487826, -26.938081974), (-28.367487826, -32.588081974))
            Line((-28.367487826, -32.588081974), (-23.367487826, -32.588081974))
        make_face()
    extrude(amount=SERVO_MICRO_3_DEPTH)

    # Servo Micro 4 outline → Servo Micro 4 (add)
    with BuildSketch(Plane(origin=(0, 0, 0), x_dir=(1, 0, 0), z_dir=(0, 1, 0)).offset(SERVO_START_4)):
        with Locations((-17.167487826, -26.388081974)):
            Circle(SERVO_MICRO_4_OUTLINE_R)
    extrude(amount=SERVO_MICRO_4_DEPTH)


with BuildPart() as body_3:
    # Servo Micro 5 outline → Servo Micro 5 (new body)
    with BuildSketch(Plane.YZ.offset(SERVO_START_5)):
        with Locations((-8.260864102, 25.188081974)):
            Circle(SERVO_MICRO_5_OUTLINE_R)
    extrude(amount=SERVO_MICRO_5_DEPTH)


with BuildPart() as body_4:
    # Servo Micro 6 outline → Servo Micro 6 (new body)
    with BuildSketch(Plane.YZ.offset(SERVO_START_5)):
        with Locations((-8.260864102, 27.588081974)):
            Circle(SERVO_MICRO_6_OUTLINE_R)
    extrude(amount=SERVO_MICRO_6_DEPTH)


with BuildPart() as body_5:
    # Servo Micro 7 outline → Servo Micro 7 (new body)
    with BuildSketch(Plane.YZ.offset(SERVO_START_5)):
        with Locations((-8.260864102, 26.388081974)):
            Circle(SERVO_MICRO_7_OUTLINE_R)
    extrude(amount=SERVO_MICRO_7_DEPTH)


with BuildPart() as body_2_1:
    # Body-Move/Copy1: read off the stored shape, not the designer's step
    # Body-Move/Copy1: moved
    add(body_2.part.moved(Location((12.0627605, 7.6108641, -11.188082))).rotate(Axis((0, 0, 0), (0, 0, -1)), BODY_MOVE_COPY1_ANGLE))


solid = part.part
